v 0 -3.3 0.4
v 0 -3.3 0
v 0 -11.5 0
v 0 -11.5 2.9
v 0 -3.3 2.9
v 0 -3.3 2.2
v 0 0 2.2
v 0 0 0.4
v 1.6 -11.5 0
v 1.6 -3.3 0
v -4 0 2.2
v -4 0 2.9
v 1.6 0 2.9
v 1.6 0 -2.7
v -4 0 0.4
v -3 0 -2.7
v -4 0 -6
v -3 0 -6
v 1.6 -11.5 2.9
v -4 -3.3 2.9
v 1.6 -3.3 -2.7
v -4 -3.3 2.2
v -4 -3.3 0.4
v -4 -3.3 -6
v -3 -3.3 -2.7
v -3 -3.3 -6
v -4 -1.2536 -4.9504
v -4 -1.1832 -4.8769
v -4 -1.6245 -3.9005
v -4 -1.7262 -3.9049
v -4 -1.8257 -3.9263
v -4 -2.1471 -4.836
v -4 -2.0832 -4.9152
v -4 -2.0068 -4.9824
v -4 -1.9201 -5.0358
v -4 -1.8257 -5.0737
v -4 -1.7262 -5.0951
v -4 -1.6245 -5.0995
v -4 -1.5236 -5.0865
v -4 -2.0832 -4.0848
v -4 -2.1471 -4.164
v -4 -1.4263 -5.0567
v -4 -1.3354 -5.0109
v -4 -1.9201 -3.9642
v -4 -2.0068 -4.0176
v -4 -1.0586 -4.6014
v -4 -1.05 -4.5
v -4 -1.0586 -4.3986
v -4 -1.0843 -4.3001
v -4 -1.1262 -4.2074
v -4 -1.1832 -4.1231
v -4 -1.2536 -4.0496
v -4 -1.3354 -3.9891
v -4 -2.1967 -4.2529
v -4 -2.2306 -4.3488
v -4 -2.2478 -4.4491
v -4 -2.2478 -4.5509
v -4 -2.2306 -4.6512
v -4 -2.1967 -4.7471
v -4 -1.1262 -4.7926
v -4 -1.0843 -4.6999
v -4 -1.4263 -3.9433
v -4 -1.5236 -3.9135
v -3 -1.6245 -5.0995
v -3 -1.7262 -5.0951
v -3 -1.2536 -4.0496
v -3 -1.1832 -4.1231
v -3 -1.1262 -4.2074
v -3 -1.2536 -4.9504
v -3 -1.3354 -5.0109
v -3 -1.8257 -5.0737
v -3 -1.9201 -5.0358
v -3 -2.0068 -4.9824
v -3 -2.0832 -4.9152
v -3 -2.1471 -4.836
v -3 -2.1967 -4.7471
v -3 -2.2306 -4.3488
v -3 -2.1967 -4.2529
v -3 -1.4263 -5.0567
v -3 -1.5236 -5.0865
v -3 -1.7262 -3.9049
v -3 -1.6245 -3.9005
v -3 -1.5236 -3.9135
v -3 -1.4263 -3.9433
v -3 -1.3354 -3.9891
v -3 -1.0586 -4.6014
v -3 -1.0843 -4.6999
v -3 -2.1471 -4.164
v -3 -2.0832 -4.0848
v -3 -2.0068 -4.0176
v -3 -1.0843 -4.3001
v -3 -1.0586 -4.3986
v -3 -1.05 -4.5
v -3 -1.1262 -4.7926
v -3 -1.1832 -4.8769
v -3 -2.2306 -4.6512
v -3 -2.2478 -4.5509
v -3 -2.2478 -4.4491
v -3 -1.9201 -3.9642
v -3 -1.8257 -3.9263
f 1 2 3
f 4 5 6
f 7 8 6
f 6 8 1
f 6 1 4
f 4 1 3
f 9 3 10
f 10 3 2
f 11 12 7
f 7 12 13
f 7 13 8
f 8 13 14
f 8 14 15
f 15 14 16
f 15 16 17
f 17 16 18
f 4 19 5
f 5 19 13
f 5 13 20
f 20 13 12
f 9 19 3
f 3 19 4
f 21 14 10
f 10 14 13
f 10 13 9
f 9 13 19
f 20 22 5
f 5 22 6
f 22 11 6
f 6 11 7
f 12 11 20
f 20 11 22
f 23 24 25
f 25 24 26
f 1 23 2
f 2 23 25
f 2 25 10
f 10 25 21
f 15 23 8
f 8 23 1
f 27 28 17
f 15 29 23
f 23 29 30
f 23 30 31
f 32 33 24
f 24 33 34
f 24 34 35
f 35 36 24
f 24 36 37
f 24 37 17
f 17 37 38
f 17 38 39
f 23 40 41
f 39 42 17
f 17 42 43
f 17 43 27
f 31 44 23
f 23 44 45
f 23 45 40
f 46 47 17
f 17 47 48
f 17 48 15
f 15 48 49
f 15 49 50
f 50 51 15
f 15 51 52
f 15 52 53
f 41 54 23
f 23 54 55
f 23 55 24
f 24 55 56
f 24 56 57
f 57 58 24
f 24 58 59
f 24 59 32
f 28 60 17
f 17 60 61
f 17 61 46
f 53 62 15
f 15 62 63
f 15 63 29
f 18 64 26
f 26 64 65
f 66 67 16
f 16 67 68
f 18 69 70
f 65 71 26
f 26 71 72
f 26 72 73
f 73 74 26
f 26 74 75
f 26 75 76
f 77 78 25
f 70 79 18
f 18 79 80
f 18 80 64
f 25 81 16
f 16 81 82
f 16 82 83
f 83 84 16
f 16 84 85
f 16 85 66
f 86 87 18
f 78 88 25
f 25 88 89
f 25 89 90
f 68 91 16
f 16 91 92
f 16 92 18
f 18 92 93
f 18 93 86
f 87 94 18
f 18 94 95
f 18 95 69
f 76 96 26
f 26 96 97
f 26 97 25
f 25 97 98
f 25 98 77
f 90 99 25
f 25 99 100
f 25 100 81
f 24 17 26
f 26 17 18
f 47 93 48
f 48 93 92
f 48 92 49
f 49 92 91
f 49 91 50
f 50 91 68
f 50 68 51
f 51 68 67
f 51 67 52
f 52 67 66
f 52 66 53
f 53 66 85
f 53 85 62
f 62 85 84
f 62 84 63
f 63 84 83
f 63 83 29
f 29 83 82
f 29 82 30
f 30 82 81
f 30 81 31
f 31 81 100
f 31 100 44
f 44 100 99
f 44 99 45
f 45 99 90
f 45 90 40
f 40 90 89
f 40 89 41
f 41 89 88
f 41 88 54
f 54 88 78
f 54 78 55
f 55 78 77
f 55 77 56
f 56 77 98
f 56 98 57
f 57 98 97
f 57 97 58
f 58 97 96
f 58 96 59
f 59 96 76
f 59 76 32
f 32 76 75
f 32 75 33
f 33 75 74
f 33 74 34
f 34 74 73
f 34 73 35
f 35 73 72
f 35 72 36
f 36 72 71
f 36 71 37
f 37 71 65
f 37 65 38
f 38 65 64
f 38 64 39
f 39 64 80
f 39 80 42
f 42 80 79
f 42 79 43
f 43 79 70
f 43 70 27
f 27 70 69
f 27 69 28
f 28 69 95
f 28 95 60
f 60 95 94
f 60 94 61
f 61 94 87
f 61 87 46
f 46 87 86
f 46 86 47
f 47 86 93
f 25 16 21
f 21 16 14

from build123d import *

# Parameters (mm, degrees)
SKETCH_1_W          = 2.9
SKETCH_1_H          = 11.5
EXTRUDE_1_DEPTH     = 1.6
SKETCH_2_W          = 0.7
SKETCH_2_H          = 3.3
SKETCH_2_W_2        = 0.4
EXTRUDE_2_DEPTH     = 4
SKETCH_3_W          = 5.6
SKETCH_3_H          = 3.3
EXTRUDE_3_DEPTH     = 3
SKETCH_4_W          = 1
SKETCH_4_H          = 3.3
EXTRUDE_4_DEPTH     = 3
SKETCH_5_R          = 0.6
CUT_EXTRUDE_1_DEPTH = 14.762630563
SKETCH_6_W          = 4.6
SKETCH_6_H          = 3.3
CUT_EXTRUDE_2_DEPTH = 0.3


with BuildPart() as part:
    # 草图1 → 凸台-拉伸1 (new body)
    with BuildSketch(Plane(origin=(0, 0, 0), x_dir=(0, 0, -1), z_dir=(1, 0, 0))):
        with Locations((-1.45, -5.75)):
            Rectangle(SKETCH_1_W, SKETCH_1_H)
    extrude(amount=EXTRUDE_1_DEPTH)

    # 草图2 → 凸台-拉伸2 (add)
    with BuildSketch(Plane.ZY):
        with Locations((2.55, -1.65)):
            Rectangle(SKETCH_2_W, SKETCH_2_H)
        with Locations((0.2, -1.65)):
            Rectangle(SKETCH_2_W_2, SKETCH_2_H)
    extrude(amount=EXTRUDE_2_DEPTH)

    # 草图3 → 凸台-拉伸3 (add)
    with BuildSketch(Plane(origin=(0, 0, 0), x_dir=(-1, 0, 0), z_dir=(0, 0, -1))):
        with Locations((1.2, -1.65)):
            Rectangle(SKETCH_3_W, SKETCH_3_H)
    extrude(amount=EXTRUDE_3_DEPTH)

    # 草图4 → 凸台-拉伸4 (add)
    with BuildSketch(Plane(origin=(0, 0, -3), x_dir=(-1, 0, 0), z_dir=(0, 0, -1))):
        with Locations((3.5, -1.65)):
            Rectangle(SKETCH_4_W, SKETCH_4_H)
    extrude(amount=EXTRUDE_4_DEPTH)

    # 草图5 → 切除-拉伸1 (cut, through all)
    with BuildSketch(Plane(origin=(-3, 0, 0), x_dir=(0, 0, -1), z_dir=(1, 0, 0))):
        with Locations(Location((4.5, -1.65, 0), (0, 0, 90))):
            Circle(SKETCH_5_R)
    extrude(amount=-CUT_EXTRUDE_1_DEPTH, mode=Mode.SUBTRACT)

    # 草图6 → 切除-拉伸2 (cut)
    with BuildSketch(Plane(origin=(0, 0, -3), x_dir=(-1, 0, 0), z_dir=(0, 0, -1))):
        with Locations((0.7, -1.65)):
            Rectangle(SKETCH_6_W, SKETCH_6_H)
    extrude(amount=-CUT_EXTRUDE_2_DEPTH, mode=Mode.SUBTRACT)


solid = part.part
